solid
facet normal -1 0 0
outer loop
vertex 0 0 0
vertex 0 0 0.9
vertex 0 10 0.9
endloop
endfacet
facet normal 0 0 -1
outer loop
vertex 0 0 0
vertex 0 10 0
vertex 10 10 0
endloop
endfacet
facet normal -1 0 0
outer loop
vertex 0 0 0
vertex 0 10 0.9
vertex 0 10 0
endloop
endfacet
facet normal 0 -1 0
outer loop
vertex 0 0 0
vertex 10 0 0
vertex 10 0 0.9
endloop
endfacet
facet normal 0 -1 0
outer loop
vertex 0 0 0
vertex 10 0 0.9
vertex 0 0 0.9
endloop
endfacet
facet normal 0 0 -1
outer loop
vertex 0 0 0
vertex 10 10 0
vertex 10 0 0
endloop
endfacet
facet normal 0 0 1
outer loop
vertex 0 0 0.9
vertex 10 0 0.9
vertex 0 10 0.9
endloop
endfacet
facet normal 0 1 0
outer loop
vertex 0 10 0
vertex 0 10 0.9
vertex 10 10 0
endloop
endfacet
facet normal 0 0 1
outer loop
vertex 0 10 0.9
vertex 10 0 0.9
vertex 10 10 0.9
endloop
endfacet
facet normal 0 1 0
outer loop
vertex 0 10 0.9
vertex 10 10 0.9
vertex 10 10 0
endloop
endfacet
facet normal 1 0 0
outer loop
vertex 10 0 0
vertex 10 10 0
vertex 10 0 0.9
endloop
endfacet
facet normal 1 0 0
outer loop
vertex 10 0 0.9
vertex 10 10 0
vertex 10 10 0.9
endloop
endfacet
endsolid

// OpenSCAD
/* Warning, this is a very basic generator with a lot of approximation 
input data : [VQFN, NXX, 10x10x0.9mm, 132, , B, C04-00360B]
generated by com.zoubworld.electronics.cad.model3d.Basic
Date : Sun Feb 15 10:50:48 CET 2026
*/

//body
color("black")
translate([0,0,0])
cube([10.0,10.0,0.9], center=false);
